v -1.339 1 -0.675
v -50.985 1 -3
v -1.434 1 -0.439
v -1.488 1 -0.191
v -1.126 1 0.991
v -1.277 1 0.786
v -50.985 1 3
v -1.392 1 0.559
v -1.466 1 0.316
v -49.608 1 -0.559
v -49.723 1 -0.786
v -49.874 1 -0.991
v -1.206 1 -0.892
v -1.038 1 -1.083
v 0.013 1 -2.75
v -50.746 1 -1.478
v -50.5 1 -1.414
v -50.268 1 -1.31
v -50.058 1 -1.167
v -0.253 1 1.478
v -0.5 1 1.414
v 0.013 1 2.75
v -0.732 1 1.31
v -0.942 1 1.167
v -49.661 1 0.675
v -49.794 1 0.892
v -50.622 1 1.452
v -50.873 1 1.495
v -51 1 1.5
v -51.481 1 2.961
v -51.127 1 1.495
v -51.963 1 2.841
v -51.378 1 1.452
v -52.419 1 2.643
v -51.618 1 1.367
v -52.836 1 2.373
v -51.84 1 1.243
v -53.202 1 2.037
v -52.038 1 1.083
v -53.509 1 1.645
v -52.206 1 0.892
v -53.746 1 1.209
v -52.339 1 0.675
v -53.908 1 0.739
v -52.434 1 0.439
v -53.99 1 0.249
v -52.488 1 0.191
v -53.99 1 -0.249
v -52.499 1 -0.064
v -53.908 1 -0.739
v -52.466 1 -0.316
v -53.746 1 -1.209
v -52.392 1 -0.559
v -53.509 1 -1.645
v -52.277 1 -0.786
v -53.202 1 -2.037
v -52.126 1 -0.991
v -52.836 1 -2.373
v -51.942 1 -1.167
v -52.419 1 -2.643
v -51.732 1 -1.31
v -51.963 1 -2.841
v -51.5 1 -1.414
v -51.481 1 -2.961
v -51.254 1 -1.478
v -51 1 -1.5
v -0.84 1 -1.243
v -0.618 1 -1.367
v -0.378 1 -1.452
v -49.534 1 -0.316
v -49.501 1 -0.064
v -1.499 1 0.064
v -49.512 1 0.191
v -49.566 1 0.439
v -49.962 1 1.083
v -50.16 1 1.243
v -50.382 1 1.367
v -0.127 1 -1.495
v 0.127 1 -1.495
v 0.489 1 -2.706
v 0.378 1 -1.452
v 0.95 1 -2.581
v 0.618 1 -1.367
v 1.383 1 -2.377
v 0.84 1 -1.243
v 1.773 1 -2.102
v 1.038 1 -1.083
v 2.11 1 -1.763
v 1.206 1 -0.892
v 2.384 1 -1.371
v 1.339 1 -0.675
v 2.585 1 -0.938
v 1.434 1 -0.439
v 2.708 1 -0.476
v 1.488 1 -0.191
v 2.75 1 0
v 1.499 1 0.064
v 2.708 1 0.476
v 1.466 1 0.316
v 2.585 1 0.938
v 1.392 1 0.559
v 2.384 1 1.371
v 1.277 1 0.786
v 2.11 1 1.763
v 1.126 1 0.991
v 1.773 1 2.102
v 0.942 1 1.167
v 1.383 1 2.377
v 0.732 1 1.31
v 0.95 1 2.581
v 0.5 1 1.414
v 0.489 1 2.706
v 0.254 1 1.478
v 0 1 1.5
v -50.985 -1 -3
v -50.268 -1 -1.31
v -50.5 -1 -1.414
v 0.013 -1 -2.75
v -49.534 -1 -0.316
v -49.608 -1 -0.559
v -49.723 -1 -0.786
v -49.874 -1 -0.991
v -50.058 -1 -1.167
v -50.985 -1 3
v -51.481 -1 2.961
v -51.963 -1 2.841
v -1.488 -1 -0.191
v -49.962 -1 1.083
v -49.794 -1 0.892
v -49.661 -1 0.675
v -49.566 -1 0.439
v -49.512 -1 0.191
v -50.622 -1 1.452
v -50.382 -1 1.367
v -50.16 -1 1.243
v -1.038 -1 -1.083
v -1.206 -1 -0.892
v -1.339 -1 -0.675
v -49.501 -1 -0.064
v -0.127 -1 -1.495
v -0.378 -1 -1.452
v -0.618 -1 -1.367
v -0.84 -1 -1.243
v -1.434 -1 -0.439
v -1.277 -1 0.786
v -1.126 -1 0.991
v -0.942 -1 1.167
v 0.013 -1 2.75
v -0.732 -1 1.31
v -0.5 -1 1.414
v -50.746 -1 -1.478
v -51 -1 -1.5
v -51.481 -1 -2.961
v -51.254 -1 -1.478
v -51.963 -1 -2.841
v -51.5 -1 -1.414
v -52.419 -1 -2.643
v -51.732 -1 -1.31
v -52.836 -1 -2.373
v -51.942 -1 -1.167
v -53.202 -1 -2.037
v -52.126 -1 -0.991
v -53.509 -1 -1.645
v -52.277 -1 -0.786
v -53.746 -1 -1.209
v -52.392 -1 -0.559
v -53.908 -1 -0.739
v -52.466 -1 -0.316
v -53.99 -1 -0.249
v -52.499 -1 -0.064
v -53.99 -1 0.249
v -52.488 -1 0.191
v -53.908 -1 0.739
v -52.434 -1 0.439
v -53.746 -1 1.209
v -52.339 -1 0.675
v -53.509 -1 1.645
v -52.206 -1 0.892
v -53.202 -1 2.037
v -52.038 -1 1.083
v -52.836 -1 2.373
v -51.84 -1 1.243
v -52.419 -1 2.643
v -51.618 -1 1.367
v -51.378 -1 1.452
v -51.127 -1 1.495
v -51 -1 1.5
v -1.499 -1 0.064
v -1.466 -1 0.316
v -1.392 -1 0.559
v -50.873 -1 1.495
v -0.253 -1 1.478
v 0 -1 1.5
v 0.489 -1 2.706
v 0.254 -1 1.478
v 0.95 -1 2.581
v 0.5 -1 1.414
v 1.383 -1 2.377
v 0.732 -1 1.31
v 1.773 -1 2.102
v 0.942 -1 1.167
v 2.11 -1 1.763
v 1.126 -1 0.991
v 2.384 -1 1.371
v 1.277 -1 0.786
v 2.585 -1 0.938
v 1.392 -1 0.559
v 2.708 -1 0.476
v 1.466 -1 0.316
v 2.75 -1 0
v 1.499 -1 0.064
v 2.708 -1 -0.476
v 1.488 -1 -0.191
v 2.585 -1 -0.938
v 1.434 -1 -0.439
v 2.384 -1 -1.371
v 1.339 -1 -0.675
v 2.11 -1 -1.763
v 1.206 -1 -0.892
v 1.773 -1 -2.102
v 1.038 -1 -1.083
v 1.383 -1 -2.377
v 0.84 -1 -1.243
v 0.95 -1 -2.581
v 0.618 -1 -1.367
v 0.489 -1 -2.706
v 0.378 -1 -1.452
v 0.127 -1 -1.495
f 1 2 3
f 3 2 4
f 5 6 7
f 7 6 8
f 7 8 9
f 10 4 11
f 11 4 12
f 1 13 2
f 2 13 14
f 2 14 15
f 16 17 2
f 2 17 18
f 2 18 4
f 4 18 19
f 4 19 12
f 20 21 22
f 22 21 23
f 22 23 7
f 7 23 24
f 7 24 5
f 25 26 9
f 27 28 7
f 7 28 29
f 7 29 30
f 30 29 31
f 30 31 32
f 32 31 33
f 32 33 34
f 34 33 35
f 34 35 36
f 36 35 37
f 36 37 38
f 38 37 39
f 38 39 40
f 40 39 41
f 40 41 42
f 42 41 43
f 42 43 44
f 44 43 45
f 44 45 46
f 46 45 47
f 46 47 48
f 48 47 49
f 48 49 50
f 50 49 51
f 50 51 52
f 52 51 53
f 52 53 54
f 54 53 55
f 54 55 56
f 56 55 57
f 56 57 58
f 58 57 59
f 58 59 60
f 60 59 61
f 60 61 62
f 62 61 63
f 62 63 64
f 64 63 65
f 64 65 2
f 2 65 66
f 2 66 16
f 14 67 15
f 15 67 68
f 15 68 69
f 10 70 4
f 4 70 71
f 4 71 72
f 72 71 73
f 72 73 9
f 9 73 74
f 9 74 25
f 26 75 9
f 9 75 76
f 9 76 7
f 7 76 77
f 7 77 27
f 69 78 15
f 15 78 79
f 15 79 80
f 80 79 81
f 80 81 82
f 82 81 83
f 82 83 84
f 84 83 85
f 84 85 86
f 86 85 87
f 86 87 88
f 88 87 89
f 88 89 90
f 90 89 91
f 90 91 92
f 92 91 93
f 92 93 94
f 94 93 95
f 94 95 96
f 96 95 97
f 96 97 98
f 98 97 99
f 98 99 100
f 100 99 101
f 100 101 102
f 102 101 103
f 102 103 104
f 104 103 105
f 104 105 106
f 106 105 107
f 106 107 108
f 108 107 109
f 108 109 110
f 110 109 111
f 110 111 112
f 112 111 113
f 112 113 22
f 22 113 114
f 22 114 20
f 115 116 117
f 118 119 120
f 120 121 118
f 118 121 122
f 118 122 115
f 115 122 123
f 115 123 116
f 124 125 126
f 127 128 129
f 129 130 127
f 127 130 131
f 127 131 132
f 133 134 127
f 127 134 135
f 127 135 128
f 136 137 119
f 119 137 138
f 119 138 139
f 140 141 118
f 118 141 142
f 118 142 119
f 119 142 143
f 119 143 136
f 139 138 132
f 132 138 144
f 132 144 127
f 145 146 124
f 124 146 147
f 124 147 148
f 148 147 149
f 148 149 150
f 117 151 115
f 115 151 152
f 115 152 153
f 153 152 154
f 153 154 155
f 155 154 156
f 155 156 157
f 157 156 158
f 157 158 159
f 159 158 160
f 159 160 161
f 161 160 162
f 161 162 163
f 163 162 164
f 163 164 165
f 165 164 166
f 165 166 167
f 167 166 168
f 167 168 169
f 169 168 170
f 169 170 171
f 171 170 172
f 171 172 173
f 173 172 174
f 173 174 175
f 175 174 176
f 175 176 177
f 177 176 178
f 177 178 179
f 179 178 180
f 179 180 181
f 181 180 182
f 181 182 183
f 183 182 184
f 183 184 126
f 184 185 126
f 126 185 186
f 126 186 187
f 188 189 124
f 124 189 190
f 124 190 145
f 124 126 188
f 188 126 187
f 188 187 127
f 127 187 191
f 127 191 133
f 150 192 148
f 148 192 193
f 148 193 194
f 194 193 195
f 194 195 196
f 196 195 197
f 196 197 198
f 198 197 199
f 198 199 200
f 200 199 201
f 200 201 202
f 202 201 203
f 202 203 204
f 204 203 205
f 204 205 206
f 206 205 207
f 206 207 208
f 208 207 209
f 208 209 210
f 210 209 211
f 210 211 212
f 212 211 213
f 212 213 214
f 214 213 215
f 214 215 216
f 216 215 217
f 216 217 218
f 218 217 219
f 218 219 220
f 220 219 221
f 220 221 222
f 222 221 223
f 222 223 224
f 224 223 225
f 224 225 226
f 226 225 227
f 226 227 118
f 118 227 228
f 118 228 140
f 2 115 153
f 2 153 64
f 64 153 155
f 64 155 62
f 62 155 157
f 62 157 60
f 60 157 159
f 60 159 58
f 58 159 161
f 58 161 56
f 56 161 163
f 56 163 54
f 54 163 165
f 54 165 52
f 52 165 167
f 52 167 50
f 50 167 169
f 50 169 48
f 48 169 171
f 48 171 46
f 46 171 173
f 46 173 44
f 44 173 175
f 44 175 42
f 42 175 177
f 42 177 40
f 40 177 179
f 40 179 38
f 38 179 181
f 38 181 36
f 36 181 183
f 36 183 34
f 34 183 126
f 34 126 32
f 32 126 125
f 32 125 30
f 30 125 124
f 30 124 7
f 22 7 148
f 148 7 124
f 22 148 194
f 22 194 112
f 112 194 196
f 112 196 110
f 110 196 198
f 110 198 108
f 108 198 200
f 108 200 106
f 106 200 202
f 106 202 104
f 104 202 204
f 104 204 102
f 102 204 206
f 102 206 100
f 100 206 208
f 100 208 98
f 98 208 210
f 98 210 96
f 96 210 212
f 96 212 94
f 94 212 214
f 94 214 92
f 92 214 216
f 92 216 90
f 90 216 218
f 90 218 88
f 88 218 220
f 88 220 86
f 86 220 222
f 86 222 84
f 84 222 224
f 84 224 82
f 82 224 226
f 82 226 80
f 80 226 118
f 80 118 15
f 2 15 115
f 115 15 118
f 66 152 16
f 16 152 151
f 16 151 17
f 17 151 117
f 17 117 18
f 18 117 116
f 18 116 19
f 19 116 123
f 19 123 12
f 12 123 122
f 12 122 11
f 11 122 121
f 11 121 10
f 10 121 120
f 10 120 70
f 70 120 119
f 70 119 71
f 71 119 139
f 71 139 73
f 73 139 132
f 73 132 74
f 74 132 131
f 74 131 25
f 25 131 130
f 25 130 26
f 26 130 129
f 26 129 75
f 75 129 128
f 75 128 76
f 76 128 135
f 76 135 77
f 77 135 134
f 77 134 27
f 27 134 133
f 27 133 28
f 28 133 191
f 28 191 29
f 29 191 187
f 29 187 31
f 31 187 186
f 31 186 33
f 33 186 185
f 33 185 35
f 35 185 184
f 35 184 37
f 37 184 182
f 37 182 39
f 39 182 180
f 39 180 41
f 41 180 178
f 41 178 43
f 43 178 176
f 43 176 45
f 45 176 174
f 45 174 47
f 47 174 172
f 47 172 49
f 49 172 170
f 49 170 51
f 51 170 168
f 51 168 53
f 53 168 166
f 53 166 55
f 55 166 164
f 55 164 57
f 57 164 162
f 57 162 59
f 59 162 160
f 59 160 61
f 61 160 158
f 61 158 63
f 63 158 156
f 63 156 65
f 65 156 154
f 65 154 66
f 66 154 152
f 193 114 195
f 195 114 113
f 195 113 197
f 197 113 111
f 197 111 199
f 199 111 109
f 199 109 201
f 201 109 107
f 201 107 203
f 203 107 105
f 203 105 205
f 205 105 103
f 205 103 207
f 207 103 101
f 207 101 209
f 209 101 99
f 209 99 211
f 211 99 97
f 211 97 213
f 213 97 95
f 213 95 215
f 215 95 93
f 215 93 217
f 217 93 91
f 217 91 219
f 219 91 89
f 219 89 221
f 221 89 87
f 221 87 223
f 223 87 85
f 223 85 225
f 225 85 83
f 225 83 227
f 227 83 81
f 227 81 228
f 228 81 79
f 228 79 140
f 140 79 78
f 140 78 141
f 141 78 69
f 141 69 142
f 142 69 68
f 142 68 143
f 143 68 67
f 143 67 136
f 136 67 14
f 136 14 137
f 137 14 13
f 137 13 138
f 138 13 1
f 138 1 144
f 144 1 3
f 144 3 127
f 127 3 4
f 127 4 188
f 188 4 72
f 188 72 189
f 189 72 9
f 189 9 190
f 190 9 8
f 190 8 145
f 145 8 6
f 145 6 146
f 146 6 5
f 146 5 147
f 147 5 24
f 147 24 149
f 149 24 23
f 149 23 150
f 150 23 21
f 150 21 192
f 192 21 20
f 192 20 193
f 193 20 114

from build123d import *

# Parameters (mm, degrees)
SKETCH1_R           = 1.5
BOSS_EXTRUDE1_DEPTH = 20
SKETCH2_R           = 1.5
BOSS_EXTRUDE2_DEPTH = 1
SKETCH3_R           = 1.5
CUT_EXTRUDE1_DEPTH  = 68.268120235


with BuildPart() as part:
    # Sketch1 → Boss-Extrude1 (new, symmetric)
    with BuildSketch(Plane(origin=(0, 0, 0), x_dir=(1, 0, 0), z_dir=(0, 1, 0))):
        with Locations(Location((0, 0, 0), (0, 0, 270))):
            Circle(SKETCH1_R)
    extrude(amount=BOSS_EXTRUDE1_DEPTH, both=True)

    # Sketch2 → Boss-Extrude2 (add, symmetric)
    with BuildSketch(Plane(origin=(0, 0, 0), x_dir=(1, 0, 0), z_dir=(0, 1, 0))):
        with BuildLine():
            Line((-50.985294118, 2.999963956), (0.013480392, 2.74996696))
            ThreePointArc((0.013480392, 2.74996696), (2.75, 0), (0.013480392, -2.74996696))
            Line((0.013480392, -2.74996696), (-50.985294118, -2.999963956))
            ThreePointArc((-50.985294118, -2.999963956), (-54, 0), (-50.985294118, 2.999963956))
        make_face()
        with Locations(Location((-51, 0, 0), (0, 0, 270))):
            Circle(SKETCH2_R, mode=Mode.SUBTRACT)
    extrude(amount=BOSS_EXTRUDE2_DEPTH, both=True)

    # Sketch3 → Cut-Extrude1 (cut, through all)
    with BuildSketch(Plane(origin=(0, 20, 0), x_dir=(1, 0, 0), z_dir=(0, 1, 0))):
        with Locations(Location((0, 0, 0), (0, 0, 270))):
            Circle(SKETCH3_R)
    extrude(amount=-CUT_EXTRUDE1_DEPTH, mode=Mode.SUBTRACT)


solid = part.part
